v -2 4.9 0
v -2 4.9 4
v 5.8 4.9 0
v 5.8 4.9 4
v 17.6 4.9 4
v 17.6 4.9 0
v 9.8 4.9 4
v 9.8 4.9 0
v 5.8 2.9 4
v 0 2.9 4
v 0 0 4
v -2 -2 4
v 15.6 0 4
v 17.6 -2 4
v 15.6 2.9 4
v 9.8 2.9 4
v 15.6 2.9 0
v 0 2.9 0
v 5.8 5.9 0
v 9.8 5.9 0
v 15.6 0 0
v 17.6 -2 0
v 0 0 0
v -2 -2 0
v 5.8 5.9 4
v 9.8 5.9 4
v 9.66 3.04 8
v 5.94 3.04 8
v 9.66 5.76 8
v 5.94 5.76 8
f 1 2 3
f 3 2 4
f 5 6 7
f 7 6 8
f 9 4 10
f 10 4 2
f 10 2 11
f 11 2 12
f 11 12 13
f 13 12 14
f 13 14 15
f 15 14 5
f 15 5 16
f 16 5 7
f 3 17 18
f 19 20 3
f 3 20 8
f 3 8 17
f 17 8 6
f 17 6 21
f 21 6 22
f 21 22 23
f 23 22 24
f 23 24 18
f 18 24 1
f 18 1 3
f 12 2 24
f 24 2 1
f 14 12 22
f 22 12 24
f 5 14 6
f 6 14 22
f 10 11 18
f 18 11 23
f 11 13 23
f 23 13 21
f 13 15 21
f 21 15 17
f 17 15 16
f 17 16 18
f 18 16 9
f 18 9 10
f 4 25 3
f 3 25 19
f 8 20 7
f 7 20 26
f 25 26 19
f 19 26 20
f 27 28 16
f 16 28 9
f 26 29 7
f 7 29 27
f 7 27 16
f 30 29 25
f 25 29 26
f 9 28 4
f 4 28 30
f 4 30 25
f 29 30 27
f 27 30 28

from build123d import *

# Parameters (mm, degrees)
ESQUISSE1_W        = 19.6
ESQUISSE1_H        = 6.9
ESQUISSE1_W_2      = 15.6
ESQUISSE1_H_2      = 2.9
EXTRU_MINCE1_DEPTH = 4
ESQUISSE2_W        = 4
ESQUISSE2_H        = 3
BOSS_EXTRU_2_DEPTH = 4
ESQUISSE3_W        = 4
ESQUISSE3_H        = 3
BOSS_EXTRU_3_DEPTH = 4
BOSS_EXTRU_3_TAPER = 2


with BuildPart() as part:
    # Esquisse1 → Extru.-Mince1 (new body)
    with BuildSketch(Plane.XY):
        with Locations((7.8, 1.45)):
            Rectangle(ESQUISSE1_W, ESQUISSE1_H)
        with Locations((7.8, 1.45)):
            Rectangle(ESQUISSE1_W_2, ESQUISSE1_H_2, mode=Mode.SUBTRACT)
    extrude(amount=EXTRU_MINCE1_DEPTH)

    # Esquisse2 → Boss.-Extru.2 (add)
    with BuildSketch(Plane.XY):
        with Locations((7.8, 4.4)):
            Rectangle(ESQUISSE2_W, ESQUISSE2_H)
    extrude(amount=BOSS_EXTRU_2_DEPTH)

    # Esquisse3 → Boss.-Extru.3 (add)
    with BuildSketch(Plane.XY.offset(4)):
        with Locations((7.8, 4.4)):
            Rectangle(ESQUISSE3_W, ESQUISSE3_H)
    extrude(amount=BOSS_EXTRU_3_DEPTH, taper=BOSS_EXTRU_3_TAPER)


solid = part.part
